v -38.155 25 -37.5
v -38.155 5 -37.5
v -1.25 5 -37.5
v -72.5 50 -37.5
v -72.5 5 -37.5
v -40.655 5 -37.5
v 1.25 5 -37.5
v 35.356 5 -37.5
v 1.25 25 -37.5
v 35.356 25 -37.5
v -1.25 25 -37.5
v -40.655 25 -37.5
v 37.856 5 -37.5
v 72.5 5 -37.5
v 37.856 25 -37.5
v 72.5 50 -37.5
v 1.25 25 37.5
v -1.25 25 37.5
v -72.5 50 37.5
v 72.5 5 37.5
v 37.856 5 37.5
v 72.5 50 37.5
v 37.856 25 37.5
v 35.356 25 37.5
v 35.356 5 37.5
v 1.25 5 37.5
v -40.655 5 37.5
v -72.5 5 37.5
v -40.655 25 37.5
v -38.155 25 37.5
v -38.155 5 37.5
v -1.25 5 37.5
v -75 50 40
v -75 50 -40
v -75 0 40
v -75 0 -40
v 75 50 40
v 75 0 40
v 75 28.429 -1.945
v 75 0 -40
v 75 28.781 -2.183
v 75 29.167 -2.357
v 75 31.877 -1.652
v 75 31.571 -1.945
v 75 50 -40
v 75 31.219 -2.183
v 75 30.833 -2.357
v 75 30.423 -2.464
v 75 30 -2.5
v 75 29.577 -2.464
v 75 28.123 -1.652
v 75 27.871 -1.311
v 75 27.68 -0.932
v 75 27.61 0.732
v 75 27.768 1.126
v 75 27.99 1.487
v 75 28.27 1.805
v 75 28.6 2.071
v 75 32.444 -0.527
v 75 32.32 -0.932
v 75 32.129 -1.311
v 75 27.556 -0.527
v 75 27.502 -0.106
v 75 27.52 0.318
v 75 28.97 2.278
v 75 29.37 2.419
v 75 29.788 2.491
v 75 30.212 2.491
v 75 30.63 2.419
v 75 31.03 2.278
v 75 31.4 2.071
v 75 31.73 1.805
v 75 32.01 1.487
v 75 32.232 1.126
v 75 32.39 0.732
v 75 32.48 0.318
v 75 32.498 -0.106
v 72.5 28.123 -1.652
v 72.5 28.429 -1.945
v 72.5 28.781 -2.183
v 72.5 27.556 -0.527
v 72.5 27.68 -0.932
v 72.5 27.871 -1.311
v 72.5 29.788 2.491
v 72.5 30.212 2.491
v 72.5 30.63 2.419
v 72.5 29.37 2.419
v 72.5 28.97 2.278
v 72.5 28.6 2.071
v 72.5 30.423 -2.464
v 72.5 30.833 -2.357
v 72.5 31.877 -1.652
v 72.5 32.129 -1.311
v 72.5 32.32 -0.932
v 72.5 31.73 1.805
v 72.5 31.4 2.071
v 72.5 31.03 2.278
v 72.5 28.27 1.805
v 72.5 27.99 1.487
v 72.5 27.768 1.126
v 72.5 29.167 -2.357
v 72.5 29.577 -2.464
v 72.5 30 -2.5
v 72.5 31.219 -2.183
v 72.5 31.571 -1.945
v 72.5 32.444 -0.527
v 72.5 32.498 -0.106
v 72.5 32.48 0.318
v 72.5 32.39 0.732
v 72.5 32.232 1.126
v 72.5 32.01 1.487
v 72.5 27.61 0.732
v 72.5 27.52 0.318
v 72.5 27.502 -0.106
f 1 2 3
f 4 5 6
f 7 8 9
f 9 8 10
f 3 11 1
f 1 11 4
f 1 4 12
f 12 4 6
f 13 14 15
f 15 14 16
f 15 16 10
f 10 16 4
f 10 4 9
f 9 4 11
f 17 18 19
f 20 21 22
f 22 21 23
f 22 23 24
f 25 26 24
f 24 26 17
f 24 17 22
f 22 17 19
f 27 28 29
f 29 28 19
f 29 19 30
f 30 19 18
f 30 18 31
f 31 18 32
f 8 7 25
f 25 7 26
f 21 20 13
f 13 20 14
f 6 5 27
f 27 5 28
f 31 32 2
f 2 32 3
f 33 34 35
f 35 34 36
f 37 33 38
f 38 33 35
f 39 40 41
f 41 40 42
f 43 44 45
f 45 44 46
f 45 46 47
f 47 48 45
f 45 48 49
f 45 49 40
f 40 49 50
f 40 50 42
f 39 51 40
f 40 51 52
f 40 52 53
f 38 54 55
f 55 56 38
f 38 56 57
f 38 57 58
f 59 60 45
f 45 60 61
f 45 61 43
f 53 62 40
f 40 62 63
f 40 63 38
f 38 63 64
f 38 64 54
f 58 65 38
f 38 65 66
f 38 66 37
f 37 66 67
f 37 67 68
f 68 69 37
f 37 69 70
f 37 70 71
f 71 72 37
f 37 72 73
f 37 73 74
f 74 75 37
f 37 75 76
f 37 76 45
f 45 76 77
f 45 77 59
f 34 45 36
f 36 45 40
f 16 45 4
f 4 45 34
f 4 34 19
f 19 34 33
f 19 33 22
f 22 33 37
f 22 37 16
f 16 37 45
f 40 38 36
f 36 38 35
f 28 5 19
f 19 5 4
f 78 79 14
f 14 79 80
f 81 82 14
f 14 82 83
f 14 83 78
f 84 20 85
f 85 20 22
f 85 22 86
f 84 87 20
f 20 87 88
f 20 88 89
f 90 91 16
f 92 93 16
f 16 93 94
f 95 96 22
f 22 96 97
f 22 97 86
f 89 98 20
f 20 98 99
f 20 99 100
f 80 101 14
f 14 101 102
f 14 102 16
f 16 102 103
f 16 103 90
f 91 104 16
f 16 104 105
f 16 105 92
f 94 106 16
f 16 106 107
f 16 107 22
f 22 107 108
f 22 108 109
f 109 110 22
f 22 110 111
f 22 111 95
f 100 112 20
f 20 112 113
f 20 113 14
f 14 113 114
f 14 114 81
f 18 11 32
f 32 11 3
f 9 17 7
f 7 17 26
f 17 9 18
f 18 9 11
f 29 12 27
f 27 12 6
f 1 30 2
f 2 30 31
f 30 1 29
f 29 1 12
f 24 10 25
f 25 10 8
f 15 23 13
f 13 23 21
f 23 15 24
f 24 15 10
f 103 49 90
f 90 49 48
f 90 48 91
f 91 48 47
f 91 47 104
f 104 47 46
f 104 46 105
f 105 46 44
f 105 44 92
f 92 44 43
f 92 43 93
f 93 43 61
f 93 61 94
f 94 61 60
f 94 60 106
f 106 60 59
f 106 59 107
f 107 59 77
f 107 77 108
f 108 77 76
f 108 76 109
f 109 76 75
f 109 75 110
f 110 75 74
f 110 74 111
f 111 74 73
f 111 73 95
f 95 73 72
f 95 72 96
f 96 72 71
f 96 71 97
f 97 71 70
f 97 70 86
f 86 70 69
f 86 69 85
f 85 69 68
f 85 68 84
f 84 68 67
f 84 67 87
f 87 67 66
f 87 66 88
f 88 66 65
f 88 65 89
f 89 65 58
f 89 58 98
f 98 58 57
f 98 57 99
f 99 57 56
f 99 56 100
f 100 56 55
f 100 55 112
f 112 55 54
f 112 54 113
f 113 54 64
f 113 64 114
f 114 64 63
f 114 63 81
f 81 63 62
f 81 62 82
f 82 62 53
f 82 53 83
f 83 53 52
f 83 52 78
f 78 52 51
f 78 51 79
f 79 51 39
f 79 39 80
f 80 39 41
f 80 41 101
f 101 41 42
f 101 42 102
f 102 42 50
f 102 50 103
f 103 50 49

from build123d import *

# Parameters (mm, degrees)
SKETCH1_W           = 150
SKETCH1_H           = 80
BOSS_EXTRUDE1_DEPTH = 50
SKETCH2_W           = 145
SKETCH2_H           = 75
CUT_EXTRUDE1_DEPTH  = 45
SKETCH6_W           = 2.5
SKETCH6_H           = 75
BOSS_EXTRUDE3_DEPTH = 20
SKETCH7_W           = 2.5
SKETCH7_H           = 75
BOSS_EXTRUDE4_DEPTH = 20
SKETCH10_W          = 2.5
SKETCH10_H          = 75
BOSS_EXTRUDE5_DEPTH = 20
SKETCH12_R          = 2.5
CUT_EXTRUDE8_DEPTH  = 10


with BuildPart() as part:
    # Sketch1 → Boss-Extrude1 (new body)
    with BuildSketch(Plane(origin=(0, 0, 0), x_dir=(1, 0, 0), z_dir=(0, 1, 0))):
        Rectangle(SKETCH1_W, SKETCH1_H)
    extrude(amount=BOSS_EXTRUDE1_DEPTH)

    # Sketch2 → Cut-Extrude1 (cut)
    with BuildSketch(Plane(origin=(0, 50, 0), x_dir=(1, 0, 0), z_dir=(0, 1, 0))):
        Rectangle(SKETCH2_W, SKETCH2_H)
    extrude(amount=-CUT_EXTRUDE1_DEPTH, mode=Mode.SUBTRACT)

    # Sketch6 → Boss-Extrude3 (add)
    with BuildSketch(Plane(origin=(0, 5, 0), x_dir=(1, 0, 0), z_dir=(0, 1, 0))):
        Rectangle(SKETCH6_W, SKETCH6_H)
    extrude(amount=BOSS_EXTRUDE3_DEPTH)

    # Sketch7 → Boss-Extrude4 (add)
    with BuildSketch(Plane(origin=(0, 5, 0), x_dir=(1, 0, 0), z_dir=(0, 1, 0))):
        with Locations((-39.404677113, 0)):
            Rectangle(SKETCH7_W, SKETCH7_H)
    extrude(amount=BOSS_EXTRUDE4_DEPTH)

    # Sketch10 → Boss-Extrude5 (add)
    with BuildSketch(Plane(origin=(0, 5, 0), x_dir=(1, 0, 0), z_dir=(0, 1, 0))):
        with Locations((36.606323204, 0)):
            Rectangle(SKETCH10_W, SKETCH10_H)
    extrude(amount=BOSS_EXTRUDE5_DEPTH)

    # Sketch12 → Cut-Extrude8 (cut)
    with BuildSketch(Plane(origin=(75, 0, 0), x_dir=(0, 0, -1), z_dir=(1, 0, 0))):
        with Locations((0, 30)):
            Circle(SKETCH12_R)
    extrude(amount=-CUT_EXTRUDE8_DEPTH, mode=Mode.SUBTRACT)


solid = part.part
